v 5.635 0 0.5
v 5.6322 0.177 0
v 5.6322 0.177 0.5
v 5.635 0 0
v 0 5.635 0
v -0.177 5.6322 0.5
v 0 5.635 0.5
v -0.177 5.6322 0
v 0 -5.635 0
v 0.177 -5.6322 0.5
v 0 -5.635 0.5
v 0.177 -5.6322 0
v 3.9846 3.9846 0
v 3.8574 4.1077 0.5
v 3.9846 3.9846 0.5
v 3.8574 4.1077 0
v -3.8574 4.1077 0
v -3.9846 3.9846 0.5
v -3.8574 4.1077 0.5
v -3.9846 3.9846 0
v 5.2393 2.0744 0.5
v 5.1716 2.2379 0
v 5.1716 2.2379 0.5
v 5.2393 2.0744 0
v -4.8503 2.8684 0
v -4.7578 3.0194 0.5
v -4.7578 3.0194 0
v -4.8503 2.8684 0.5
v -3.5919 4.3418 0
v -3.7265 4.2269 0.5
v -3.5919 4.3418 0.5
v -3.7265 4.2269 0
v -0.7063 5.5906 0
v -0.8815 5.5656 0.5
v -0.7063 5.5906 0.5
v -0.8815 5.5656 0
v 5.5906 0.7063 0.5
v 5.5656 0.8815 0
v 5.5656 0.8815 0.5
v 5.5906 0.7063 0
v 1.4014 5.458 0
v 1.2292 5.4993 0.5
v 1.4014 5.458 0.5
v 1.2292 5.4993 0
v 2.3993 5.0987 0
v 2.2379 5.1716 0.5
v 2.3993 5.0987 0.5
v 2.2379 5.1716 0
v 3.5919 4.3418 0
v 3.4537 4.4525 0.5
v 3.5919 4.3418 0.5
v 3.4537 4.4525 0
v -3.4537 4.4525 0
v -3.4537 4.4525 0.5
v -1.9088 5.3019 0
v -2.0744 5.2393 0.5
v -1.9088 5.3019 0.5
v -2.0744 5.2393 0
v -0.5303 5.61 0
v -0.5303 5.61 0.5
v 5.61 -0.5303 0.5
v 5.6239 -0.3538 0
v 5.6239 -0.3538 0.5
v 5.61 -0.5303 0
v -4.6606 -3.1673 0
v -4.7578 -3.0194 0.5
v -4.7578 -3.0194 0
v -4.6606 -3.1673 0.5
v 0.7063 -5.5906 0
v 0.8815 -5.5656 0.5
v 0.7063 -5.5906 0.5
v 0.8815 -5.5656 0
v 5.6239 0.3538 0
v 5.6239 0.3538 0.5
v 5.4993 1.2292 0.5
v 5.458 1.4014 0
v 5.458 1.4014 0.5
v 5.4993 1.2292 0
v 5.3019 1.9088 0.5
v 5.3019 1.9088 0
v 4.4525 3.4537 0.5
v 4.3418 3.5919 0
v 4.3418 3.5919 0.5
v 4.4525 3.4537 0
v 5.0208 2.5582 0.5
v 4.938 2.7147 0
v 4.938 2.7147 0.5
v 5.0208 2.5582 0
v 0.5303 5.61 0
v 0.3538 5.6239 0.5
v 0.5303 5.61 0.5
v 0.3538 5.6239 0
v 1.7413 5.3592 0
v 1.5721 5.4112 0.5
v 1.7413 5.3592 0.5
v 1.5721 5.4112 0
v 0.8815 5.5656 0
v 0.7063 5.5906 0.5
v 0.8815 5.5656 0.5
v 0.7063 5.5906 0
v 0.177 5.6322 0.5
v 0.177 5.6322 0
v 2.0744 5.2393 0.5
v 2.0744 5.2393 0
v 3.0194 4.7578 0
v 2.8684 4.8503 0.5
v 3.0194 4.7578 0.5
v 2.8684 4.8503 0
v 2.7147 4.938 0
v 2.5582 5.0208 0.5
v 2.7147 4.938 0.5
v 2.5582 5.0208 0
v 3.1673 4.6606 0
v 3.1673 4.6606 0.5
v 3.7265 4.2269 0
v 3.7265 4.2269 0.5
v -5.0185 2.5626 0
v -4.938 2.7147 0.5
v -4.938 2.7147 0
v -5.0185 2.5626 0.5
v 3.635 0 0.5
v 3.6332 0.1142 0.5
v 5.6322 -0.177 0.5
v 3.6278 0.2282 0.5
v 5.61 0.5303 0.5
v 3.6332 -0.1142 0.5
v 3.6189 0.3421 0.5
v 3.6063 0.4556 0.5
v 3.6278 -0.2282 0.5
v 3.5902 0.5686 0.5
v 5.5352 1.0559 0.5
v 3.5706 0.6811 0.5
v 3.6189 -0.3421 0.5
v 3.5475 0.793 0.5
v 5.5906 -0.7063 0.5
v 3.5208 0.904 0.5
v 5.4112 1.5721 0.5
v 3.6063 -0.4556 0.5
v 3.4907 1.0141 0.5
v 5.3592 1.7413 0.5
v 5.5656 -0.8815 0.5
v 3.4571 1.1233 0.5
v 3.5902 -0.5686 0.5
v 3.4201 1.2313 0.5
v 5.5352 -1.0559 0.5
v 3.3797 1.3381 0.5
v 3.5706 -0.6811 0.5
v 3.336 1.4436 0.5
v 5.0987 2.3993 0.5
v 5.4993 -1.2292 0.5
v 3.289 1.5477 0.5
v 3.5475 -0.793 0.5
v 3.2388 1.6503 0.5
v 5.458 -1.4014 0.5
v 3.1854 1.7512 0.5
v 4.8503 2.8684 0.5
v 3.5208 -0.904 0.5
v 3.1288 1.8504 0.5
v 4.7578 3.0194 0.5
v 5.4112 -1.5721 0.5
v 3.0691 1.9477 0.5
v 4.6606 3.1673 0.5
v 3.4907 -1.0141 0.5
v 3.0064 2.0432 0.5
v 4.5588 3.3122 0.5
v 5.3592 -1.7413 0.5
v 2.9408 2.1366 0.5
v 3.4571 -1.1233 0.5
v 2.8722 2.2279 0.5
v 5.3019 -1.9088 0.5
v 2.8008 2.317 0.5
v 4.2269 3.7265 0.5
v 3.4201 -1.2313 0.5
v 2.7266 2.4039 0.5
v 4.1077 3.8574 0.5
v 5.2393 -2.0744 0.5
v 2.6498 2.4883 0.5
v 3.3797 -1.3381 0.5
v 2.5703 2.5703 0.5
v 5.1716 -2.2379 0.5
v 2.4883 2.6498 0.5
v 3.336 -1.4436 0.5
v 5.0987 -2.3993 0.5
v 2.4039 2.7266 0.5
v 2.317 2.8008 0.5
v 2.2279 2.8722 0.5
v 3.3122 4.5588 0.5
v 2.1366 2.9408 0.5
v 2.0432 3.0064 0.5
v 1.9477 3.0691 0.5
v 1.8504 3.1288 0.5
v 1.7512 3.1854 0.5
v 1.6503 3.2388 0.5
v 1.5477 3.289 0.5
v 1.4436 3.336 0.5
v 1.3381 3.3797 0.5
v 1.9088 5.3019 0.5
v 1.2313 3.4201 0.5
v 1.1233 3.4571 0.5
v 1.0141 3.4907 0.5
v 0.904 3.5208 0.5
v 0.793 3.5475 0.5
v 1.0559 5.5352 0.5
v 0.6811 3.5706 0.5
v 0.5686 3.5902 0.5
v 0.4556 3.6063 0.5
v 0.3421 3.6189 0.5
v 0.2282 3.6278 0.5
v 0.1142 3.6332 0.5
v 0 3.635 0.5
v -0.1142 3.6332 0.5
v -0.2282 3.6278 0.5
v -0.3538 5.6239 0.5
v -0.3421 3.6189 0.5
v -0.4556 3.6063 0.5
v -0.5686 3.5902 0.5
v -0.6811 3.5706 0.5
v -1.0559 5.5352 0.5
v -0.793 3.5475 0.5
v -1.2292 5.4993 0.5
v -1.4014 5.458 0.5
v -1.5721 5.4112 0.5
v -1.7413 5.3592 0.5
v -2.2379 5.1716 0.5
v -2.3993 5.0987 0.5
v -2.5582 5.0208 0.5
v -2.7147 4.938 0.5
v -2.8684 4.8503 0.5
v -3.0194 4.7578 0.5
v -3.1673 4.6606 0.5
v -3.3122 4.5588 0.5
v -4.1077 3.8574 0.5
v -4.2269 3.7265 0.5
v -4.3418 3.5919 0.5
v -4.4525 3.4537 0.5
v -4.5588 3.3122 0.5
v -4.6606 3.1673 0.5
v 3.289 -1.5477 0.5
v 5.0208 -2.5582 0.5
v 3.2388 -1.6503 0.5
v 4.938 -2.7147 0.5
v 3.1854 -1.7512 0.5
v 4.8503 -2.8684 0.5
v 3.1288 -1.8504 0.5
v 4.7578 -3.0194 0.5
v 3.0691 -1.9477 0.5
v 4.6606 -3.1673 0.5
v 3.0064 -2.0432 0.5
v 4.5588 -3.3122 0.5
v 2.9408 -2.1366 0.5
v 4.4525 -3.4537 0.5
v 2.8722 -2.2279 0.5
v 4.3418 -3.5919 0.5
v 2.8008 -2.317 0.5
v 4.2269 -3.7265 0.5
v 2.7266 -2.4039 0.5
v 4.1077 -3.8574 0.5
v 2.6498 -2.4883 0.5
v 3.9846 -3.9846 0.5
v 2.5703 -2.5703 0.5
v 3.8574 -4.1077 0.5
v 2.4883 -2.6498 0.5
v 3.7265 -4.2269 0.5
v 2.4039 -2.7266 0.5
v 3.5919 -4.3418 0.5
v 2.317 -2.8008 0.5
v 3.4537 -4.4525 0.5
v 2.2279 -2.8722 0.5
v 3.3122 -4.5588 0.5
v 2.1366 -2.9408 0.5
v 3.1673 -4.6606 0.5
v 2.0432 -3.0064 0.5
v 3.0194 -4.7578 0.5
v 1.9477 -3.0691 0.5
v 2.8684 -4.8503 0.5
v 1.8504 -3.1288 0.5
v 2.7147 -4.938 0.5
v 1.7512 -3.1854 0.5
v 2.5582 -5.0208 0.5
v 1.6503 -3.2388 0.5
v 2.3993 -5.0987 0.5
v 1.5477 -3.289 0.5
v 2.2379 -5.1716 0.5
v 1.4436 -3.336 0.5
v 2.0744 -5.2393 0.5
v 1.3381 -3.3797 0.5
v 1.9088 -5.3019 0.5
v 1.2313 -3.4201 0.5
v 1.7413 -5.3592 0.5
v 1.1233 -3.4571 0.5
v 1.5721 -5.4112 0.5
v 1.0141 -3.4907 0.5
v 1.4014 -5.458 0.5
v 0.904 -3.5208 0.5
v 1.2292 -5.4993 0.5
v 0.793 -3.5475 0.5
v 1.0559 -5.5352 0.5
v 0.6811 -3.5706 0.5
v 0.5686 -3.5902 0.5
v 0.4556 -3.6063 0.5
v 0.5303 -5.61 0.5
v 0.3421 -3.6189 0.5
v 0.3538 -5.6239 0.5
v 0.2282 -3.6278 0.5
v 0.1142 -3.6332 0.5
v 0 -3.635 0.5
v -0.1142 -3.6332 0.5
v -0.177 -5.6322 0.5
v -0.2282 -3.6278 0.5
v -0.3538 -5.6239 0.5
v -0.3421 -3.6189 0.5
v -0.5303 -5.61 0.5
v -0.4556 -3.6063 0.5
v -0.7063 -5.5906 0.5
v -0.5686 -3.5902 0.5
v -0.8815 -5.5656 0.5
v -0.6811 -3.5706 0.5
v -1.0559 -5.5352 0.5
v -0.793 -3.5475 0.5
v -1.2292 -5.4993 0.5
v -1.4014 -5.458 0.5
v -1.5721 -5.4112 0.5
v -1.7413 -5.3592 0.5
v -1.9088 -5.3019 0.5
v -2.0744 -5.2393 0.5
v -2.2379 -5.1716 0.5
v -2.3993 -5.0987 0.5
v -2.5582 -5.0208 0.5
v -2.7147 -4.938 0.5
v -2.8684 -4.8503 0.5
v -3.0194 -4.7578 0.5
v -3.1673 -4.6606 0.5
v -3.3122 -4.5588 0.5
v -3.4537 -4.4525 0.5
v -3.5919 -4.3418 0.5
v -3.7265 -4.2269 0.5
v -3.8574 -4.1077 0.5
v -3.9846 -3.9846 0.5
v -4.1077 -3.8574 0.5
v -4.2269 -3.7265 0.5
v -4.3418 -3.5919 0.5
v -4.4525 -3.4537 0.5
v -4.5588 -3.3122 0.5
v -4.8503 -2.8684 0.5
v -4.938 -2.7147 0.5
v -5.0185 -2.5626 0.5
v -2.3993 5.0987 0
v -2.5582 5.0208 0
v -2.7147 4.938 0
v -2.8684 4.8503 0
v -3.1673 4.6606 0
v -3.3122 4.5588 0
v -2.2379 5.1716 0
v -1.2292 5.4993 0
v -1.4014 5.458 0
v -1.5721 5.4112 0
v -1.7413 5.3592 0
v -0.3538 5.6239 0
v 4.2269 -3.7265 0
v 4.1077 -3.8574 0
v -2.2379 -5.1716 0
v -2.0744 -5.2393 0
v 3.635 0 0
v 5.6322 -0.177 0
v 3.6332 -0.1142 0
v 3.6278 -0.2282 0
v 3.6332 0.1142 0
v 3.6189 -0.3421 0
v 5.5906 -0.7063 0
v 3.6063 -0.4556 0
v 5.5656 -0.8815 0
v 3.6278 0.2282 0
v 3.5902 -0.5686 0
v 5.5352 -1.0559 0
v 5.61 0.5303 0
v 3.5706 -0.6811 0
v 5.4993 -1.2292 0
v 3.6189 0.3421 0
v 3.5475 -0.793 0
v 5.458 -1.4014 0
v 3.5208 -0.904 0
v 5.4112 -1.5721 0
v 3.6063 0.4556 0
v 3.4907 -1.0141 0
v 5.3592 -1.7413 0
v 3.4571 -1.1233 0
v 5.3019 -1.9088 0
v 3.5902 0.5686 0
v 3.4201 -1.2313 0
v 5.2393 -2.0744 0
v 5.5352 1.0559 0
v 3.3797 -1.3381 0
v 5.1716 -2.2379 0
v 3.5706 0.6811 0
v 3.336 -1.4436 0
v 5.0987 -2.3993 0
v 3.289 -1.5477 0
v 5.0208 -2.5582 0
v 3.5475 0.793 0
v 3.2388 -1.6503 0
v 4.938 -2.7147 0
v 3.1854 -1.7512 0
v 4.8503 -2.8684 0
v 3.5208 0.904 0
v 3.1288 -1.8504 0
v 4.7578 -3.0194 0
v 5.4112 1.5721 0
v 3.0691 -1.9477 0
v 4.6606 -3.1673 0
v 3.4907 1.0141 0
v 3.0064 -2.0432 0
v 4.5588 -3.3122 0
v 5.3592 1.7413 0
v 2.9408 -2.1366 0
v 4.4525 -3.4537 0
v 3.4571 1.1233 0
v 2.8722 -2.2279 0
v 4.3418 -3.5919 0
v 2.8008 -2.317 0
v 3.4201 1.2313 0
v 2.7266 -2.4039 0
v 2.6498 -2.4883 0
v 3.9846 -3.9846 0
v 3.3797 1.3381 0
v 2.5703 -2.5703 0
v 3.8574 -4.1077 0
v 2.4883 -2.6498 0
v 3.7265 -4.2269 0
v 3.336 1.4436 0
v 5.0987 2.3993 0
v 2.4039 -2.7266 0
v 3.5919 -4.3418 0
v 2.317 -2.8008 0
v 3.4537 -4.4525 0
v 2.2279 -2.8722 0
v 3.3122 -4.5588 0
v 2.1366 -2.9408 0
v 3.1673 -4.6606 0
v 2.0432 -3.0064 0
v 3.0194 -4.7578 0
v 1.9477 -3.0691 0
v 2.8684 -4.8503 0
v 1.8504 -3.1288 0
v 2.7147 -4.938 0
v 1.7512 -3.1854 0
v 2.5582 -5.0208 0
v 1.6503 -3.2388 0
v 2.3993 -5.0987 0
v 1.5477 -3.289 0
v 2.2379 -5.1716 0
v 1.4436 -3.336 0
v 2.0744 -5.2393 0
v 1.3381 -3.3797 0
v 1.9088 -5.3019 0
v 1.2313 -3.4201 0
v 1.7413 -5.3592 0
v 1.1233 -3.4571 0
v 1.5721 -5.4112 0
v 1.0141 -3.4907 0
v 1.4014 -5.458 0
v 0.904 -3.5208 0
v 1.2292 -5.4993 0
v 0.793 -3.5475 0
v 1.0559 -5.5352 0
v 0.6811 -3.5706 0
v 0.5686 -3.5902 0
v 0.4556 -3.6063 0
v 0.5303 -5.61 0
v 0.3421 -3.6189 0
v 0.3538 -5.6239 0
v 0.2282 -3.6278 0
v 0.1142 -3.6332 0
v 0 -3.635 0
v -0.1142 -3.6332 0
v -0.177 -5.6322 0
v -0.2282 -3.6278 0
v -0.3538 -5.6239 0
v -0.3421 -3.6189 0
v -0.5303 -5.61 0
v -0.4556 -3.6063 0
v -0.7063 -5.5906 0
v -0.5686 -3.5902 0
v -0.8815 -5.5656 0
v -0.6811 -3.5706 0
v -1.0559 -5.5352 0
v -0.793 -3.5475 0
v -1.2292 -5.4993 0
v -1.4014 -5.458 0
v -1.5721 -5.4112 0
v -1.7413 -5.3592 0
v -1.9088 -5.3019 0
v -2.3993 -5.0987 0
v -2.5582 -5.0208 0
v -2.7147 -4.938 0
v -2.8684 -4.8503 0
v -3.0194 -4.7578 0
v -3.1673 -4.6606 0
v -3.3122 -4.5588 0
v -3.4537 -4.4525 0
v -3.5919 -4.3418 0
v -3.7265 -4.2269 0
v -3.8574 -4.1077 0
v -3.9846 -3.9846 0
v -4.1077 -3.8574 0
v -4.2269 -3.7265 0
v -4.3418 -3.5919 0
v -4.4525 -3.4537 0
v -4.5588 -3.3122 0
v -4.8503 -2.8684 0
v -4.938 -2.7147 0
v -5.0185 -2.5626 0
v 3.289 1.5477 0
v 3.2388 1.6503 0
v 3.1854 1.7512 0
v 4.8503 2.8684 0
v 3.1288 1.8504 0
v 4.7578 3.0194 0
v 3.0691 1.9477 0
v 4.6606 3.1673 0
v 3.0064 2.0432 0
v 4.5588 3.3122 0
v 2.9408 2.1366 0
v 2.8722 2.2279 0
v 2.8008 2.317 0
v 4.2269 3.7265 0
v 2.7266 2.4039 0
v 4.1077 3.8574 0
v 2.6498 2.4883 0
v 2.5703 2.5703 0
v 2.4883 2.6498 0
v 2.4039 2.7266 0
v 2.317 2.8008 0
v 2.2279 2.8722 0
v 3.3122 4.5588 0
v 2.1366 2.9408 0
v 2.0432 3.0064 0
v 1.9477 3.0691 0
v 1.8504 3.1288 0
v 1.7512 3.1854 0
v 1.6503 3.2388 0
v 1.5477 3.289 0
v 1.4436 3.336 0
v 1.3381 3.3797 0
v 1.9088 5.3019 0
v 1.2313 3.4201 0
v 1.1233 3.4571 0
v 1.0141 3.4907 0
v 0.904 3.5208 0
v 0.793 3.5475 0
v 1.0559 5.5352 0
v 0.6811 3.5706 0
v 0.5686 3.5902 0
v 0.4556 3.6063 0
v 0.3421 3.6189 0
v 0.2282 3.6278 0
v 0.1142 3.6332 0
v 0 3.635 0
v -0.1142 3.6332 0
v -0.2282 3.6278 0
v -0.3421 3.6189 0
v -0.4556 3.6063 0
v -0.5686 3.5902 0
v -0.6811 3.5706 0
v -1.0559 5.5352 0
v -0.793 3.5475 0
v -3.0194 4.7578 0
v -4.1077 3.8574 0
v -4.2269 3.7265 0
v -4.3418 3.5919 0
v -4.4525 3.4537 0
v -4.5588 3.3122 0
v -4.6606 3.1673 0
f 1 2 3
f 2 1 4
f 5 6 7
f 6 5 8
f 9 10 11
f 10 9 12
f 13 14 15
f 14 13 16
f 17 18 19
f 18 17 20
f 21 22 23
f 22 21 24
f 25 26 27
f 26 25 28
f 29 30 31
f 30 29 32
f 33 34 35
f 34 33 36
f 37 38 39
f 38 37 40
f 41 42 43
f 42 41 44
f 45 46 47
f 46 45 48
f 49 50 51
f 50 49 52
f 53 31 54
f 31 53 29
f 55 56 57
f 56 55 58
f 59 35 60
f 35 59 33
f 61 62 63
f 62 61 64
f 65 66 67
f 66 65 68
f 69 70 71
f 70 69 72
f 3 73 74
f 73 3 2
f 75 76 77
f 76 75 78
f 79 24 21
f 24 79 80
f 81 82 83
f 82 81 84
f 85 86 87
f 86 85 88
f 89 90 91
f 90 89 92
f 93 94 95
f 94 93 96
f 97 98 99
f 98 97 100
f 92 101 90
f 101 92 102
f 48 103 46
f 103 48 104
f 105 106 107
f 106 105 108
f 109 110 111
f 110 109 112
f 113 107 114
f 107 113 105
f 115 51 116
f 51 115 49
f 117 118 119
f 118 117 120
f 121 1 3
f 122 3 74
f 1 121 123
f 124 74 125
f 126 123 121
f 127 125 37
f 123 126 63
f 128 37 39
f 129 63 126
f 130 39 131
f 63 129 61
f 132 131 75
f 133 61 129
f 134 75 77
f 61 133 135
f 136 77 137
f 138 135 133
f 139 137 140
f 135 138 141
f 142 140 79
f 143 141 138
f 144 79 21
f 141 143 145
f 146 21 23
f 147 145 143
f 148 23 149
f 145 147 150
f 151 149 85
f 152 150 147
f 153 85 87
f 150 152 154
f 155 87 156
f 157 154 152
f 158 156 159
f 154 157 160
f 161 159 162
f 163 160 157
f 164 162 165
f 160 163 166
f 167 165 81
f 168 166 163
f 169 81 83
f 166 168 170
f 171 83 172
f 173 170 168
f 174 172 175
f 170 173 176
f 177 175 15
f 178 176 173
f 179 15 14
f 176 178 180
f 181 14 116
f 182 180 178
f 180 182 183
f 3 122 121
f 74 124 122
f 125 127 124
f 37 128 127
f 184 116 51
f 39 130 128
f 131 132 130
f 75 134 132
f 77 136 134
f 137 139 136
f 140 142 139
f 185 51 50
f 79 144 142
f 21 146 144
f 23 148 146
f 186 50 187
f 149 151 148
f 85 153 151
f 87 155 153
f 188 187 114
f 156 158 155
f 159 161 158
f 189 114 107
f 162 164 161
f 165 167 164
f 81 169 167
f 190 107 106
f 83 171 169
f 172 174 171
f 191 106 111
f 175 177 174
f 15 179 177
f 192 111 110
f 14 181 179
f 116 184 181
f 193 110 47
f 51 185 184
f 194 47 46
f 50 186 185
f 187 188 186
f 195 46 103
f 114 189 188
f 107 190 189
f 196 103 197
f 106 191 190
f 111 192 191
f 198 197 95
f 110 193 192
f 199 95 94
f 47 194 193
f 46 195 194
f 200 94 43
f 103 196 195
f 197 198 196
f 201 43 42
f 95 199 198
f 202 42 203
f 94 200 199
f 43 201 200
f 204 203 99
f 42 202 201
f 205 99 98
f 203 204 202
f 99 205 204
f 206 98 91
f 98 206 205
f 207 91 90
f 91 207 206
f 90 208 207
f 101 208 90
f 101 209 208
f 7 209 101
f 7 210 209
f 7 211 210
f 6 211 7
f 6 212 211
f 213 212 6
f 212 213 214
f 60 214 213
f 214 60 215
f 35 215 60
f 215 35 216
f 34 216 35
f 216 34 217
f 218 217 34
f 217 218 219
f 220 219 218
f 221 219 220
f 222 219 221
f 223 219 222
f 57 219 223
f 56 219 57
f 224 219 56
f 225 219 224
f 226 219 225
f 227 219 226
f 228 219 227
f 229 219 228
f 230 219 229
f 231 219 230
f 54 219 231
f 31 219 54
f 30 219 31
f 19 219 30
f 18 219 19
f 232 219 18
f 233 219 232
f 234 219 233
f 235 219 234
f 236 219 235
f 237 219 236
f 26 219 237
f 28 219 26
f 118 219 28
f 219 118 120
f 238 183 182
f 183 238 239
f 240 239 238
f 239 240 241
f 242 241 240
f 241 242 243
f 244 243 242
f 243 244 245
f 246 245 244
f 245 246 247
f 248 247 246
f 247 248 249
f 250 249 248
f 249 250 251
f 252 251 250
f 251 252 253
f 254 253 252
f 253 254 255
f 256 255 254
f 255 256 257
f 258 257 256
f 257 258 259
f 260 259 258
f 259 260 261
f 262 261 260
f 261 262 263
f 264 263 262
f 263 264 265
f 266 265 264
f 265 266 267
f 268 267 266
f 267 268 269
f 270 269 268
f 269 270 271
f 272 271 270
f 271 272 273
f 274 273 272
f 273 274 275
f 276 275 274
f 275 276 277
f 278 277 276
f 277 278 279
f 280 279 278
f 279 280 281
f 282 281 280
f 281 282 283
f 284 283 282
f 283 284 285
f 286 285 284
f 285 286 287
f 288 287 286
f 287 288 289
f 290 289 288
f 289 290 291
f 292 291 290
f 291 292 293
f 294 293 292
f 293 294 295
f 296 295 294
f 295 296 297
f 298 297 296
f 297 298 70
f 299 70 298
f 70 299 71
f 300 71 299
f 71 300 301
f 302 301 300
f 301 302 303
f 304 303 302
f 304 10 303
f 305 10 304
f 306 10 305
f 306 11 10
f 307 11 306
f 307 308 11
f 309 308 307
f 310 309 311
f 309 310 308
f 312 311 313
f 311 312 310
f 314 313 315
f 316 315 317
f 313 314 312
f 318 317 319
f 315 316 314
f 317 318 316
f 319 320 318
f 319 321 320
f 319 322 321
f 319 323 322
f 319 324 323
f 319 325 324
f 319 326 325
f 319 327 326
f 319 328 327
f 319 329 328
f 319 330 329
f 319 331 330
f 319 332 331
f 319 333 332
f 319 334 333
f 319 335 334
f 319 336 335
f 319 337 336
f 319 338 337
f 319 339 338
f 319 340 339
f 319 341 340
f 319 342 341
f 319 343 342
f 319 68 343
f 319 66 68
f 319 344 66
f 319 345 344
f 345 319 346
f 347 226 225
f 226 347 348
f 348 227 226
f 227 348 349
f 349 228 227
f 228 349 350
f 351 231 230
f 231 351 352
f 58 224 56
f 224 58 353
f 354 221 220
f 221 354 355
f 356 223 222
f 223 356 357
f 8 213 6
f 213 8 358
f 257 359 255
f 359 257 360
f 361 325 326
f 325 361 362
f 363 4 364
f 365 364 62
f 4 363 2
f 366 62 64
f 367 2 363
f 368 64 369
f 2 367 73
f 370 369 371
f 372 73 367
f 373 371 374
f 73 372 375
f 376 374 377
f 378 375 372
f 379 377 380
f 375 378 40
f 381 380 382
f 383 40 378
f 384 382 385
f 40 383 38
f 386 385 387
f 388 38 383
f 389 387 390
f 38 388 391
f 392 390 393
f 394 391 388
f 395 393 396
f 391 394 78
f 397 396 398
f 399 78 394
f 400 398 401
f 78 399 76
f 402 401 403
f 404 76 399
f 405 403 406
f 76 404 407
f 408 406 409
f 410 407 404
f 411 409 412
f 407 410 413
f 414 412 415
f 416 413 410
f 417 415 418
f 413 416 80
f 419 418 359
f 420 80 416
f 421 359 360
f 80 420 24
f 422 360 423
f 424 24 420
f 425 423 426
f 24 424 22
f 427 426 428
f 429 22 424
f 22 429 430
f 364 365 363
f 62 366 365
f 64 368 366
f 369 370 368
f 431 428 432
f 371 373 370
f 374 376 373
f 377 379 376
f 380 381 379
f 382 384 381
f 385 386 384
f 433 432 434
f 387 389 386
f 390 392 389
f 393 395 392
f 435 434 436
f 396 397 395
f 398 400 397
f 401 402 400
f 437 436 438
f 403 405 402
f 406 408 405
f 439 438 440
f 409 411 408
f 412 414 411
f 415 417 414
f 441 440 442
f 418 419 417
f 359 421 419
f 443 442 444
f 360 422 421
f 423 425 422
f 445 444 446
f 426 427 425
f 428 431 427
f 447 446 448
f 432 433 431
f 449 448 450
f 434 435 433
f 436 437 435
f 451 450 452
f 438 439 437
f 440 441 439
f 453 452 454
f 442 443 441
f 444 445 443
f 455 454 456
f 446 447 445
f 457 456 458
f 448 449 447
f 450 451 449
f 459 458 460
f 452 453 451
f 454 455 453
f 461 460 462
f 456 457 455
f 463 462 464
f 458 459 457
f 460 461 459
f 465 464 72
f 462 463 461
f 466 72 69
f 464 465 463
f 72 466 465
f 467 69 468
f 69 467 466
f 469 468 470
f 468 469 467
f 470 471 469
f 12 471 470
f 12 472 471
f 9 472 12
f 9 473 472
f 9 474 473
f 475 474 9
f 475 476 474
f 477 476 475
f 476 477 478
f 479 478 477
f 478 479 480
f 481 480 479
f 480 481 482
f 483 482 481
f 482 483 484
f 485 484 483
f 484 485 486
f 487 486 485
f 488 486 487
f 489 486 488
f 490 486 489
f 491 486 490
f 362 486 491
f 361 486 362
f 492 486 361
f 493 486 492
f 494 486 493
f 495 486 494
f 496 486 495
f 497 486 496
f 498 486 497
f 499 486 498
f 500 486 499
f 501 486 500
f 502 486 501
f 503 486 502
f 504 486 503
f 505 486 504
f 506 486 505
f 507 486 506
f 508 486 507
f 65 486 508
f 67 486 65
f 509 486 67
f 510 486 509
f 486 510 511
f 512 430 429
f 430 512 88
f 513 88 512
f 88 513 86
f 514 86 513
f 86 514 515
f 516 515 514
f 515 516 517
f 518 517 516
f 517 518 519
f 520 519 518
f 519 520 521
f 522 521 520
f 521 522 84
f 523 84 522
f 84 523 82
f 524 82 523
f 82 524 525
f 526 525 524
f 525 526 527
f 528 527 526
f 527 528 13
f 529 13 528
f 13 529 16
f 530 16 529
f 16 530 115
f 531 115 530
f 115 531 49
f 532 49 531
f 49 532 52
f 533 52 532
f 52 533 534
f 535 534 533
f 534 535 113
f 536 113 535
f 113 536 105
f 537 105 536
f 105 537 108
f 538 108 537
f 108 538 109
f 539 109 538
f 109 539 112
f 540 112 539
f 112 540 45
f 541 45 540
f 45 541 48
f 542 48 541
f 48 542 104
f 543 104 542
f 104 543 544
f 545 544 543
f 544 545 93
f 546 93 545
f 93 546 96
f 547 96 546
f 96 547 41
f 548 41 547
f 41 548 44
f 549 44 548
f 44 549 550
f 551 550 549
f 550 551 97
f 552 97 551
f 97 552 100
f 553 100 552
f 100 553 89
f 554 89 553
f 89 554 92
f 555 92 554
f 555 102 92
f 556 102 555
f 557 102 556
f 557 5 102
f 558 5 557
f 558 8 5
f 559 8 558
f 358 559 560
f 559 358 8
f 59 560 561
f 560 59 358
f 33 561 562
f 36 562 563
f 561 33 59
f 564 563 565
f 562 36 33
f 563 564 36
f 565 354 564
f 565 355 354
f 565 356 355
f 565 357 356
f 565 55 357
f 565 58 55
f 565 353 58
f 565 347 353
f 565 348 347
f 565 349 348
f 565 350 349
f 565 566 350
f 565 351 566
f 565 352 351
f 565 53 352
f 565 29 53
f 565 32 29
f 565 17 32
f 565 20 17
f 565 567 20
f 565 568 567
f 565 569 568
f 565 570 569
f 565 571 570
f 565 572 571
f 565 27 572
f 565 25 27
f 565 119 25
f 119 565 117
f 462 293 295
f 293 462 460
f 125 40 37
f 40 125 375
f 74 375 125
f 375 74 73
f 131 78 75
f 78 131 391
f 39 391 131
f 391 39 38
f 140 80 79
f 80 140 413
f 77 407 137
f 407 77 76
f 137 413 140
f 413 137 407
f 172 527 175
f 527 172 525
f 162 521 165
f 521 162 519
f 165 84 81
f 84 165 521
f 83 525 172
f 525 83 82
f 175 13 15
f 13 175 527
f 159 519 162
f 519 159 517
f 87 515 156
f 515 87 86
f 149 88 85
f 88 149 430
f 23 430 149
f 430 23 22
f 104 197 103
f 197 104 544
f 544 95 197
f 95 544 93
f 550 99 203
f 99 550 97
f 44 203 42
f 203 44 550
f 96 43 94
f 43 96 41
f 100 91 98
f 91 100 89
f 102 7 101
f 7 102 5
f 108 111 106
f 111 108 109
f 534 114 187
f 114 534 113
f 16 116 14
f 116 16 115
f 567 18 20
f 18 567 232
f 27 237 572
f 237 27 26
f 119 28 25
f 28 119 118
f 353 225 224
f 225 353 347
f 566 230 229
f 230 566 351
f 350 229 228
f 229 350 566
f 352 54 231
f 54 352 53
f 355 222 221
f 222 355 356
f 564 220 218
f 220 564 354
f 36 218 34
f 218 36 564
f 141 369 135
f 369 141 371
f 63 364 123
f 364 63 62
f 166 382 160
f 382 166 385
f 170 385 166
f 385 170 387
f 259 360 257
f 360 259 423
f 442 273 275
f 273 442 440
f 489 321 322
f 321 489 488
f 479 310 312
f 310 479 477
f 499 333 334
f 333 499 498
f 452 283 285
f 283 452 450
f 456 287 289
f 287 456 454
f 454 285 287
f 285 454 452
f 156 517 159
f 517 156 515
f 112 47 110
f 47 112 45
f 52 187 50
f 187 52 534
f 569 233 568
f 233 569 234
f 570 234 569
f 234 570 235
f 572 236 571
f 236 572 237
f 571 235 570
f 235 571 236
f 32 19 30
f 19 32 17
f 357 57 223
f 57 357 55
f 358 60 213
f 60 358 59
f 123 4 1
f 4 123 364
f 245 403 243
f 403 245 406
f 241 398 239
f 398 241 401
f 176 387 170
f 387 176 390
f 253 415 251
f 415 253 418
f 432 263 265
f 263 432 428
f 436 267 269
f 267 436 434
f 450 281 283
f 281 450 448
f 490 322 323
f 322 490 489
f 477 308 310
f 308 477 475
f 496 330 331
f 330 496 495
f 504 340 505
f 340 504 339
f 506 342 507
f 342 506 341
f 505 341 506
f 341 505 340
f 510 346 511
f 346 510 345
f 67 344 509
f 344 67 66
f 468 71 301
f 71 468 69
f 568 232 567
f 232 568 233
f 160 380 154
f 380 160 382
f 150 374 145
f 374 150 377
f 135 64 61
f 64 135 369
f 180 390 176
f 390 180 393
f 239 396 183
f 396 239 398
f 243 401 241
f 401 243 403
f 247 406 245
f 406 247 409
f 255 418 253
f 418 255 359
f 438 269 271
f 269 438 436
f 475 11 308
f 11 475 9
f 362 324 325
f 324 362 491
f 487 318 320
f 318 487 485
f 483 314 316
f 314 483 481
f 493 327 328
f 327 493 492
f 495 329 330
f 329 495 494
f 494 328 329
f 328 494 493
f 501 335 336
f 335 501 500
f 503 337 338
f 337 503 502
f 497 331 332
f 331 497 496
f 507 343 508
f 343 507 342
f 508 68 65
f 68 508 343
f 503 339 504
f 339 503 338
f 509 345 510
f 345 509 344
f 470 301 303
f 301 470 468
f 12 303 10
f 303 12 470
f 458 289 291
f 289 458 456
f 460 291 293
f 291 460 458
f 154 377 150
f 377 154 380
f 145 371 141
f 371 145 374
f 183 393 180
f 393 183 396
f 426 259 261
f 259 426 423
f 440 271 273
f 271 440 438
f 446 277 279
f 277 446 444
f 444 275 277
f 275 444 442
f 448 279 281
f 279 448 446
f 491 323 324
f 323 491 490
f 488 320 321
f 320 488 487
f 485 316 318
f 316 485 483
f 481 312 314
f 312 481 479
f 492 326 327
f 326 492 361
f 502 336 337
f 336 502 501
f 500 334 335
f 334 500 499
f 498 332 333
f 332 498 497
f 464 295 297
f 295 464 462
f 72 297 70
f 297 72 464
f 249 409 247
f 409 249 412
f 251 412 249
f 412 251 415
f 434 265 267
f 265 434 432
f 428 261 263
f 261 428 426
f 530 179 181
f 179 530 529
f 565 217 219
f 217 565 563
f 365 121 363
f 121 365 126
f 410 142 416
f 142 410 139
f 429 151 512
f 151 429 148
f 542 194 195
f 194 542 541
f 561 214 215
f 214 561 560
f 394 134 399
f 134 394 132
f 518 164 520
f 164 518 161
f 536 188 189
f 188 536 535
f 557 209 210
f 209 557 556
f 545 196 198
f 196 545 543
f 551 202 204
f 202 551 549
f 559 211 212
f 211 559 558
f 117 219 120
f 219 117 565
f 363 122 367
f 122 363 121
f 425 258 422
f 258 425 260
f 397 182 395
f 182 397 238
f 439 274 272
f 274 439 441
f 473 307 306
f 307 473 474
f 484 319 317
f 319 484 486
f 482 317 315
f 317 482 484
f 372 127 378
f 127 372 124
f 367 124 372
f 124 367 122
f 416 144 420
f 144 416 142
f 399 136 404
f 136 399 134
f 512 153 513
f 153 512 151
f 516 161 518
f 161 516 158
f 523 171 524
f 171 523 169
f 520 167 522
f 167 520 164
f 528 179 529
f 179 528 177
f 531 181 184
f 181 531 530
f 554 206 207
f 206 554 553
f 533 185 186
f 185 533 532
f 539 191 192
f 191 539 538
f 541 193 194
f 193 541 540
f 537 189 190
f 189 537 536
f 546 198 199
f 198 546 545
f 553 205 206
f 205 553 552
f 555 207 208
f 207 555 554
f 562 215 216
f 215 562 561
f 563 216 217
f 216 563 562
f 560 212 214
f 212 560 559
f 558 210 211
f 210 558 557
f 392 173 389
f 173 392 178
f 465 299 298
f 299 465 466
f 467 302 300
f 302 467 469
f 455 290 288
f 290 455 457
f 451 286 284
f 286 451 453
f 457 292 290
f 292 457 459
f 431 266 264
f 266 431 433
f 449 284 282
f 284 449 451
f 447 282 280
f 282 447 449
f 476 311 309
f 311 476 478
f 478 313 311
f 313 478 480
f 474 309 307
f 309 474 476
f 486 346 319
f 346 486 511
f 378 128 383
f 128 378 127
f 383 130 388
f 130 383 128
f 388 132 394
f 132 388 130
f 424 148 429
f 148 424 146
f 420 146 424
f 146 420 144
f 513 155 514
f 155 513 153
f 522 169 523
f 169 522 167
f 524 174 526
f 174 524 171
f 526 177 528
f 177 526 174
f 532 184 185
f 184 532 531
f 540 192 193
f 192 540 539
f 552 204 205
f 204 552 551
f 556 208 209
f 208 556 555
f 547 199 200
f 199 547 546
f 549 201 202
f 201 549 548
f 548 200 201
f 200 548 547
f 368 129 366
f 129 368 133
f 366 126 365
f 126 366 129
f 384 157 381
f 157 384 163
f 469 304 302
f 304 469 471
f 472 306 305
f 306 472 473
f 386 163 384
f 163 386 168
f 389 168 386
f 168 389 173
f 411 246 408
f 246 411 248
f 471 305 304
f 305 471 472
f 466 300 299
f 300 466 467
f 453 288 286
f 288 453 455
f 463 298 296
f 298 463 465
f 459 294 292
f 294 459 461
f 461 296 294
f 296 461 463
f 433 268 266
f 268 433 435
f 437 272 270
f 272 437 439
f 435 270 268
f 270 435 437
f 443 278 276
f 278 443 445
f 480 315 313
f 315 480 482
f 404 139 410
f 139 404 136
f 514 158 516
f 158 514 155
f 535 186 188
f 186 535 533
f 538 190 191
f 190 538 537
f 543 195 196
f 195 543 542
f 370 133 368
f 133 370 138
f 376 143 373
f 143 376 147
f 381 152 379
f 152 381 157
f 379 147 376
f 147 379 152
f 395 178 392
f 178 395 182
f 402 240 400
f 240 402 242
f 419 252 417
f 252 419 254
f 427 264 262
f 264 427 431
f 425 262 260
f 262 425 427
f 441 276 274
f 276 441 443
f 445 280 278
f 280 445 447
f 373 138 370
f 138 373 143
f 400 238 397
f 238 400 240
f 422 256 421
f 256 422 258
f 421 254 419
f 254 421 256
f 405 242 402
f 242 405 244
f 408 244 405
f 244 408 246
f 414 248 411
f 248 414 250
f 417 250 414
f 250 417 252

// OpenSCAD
$fn=200;
difference(){
  cylinder(d=7.27+4, h=0.5);
  hull(){
    cylinder(d=7.27, h=0.5);
    translate([-5,0,0])
    cylinder(d=5, h=0.5);
  };
};
  
